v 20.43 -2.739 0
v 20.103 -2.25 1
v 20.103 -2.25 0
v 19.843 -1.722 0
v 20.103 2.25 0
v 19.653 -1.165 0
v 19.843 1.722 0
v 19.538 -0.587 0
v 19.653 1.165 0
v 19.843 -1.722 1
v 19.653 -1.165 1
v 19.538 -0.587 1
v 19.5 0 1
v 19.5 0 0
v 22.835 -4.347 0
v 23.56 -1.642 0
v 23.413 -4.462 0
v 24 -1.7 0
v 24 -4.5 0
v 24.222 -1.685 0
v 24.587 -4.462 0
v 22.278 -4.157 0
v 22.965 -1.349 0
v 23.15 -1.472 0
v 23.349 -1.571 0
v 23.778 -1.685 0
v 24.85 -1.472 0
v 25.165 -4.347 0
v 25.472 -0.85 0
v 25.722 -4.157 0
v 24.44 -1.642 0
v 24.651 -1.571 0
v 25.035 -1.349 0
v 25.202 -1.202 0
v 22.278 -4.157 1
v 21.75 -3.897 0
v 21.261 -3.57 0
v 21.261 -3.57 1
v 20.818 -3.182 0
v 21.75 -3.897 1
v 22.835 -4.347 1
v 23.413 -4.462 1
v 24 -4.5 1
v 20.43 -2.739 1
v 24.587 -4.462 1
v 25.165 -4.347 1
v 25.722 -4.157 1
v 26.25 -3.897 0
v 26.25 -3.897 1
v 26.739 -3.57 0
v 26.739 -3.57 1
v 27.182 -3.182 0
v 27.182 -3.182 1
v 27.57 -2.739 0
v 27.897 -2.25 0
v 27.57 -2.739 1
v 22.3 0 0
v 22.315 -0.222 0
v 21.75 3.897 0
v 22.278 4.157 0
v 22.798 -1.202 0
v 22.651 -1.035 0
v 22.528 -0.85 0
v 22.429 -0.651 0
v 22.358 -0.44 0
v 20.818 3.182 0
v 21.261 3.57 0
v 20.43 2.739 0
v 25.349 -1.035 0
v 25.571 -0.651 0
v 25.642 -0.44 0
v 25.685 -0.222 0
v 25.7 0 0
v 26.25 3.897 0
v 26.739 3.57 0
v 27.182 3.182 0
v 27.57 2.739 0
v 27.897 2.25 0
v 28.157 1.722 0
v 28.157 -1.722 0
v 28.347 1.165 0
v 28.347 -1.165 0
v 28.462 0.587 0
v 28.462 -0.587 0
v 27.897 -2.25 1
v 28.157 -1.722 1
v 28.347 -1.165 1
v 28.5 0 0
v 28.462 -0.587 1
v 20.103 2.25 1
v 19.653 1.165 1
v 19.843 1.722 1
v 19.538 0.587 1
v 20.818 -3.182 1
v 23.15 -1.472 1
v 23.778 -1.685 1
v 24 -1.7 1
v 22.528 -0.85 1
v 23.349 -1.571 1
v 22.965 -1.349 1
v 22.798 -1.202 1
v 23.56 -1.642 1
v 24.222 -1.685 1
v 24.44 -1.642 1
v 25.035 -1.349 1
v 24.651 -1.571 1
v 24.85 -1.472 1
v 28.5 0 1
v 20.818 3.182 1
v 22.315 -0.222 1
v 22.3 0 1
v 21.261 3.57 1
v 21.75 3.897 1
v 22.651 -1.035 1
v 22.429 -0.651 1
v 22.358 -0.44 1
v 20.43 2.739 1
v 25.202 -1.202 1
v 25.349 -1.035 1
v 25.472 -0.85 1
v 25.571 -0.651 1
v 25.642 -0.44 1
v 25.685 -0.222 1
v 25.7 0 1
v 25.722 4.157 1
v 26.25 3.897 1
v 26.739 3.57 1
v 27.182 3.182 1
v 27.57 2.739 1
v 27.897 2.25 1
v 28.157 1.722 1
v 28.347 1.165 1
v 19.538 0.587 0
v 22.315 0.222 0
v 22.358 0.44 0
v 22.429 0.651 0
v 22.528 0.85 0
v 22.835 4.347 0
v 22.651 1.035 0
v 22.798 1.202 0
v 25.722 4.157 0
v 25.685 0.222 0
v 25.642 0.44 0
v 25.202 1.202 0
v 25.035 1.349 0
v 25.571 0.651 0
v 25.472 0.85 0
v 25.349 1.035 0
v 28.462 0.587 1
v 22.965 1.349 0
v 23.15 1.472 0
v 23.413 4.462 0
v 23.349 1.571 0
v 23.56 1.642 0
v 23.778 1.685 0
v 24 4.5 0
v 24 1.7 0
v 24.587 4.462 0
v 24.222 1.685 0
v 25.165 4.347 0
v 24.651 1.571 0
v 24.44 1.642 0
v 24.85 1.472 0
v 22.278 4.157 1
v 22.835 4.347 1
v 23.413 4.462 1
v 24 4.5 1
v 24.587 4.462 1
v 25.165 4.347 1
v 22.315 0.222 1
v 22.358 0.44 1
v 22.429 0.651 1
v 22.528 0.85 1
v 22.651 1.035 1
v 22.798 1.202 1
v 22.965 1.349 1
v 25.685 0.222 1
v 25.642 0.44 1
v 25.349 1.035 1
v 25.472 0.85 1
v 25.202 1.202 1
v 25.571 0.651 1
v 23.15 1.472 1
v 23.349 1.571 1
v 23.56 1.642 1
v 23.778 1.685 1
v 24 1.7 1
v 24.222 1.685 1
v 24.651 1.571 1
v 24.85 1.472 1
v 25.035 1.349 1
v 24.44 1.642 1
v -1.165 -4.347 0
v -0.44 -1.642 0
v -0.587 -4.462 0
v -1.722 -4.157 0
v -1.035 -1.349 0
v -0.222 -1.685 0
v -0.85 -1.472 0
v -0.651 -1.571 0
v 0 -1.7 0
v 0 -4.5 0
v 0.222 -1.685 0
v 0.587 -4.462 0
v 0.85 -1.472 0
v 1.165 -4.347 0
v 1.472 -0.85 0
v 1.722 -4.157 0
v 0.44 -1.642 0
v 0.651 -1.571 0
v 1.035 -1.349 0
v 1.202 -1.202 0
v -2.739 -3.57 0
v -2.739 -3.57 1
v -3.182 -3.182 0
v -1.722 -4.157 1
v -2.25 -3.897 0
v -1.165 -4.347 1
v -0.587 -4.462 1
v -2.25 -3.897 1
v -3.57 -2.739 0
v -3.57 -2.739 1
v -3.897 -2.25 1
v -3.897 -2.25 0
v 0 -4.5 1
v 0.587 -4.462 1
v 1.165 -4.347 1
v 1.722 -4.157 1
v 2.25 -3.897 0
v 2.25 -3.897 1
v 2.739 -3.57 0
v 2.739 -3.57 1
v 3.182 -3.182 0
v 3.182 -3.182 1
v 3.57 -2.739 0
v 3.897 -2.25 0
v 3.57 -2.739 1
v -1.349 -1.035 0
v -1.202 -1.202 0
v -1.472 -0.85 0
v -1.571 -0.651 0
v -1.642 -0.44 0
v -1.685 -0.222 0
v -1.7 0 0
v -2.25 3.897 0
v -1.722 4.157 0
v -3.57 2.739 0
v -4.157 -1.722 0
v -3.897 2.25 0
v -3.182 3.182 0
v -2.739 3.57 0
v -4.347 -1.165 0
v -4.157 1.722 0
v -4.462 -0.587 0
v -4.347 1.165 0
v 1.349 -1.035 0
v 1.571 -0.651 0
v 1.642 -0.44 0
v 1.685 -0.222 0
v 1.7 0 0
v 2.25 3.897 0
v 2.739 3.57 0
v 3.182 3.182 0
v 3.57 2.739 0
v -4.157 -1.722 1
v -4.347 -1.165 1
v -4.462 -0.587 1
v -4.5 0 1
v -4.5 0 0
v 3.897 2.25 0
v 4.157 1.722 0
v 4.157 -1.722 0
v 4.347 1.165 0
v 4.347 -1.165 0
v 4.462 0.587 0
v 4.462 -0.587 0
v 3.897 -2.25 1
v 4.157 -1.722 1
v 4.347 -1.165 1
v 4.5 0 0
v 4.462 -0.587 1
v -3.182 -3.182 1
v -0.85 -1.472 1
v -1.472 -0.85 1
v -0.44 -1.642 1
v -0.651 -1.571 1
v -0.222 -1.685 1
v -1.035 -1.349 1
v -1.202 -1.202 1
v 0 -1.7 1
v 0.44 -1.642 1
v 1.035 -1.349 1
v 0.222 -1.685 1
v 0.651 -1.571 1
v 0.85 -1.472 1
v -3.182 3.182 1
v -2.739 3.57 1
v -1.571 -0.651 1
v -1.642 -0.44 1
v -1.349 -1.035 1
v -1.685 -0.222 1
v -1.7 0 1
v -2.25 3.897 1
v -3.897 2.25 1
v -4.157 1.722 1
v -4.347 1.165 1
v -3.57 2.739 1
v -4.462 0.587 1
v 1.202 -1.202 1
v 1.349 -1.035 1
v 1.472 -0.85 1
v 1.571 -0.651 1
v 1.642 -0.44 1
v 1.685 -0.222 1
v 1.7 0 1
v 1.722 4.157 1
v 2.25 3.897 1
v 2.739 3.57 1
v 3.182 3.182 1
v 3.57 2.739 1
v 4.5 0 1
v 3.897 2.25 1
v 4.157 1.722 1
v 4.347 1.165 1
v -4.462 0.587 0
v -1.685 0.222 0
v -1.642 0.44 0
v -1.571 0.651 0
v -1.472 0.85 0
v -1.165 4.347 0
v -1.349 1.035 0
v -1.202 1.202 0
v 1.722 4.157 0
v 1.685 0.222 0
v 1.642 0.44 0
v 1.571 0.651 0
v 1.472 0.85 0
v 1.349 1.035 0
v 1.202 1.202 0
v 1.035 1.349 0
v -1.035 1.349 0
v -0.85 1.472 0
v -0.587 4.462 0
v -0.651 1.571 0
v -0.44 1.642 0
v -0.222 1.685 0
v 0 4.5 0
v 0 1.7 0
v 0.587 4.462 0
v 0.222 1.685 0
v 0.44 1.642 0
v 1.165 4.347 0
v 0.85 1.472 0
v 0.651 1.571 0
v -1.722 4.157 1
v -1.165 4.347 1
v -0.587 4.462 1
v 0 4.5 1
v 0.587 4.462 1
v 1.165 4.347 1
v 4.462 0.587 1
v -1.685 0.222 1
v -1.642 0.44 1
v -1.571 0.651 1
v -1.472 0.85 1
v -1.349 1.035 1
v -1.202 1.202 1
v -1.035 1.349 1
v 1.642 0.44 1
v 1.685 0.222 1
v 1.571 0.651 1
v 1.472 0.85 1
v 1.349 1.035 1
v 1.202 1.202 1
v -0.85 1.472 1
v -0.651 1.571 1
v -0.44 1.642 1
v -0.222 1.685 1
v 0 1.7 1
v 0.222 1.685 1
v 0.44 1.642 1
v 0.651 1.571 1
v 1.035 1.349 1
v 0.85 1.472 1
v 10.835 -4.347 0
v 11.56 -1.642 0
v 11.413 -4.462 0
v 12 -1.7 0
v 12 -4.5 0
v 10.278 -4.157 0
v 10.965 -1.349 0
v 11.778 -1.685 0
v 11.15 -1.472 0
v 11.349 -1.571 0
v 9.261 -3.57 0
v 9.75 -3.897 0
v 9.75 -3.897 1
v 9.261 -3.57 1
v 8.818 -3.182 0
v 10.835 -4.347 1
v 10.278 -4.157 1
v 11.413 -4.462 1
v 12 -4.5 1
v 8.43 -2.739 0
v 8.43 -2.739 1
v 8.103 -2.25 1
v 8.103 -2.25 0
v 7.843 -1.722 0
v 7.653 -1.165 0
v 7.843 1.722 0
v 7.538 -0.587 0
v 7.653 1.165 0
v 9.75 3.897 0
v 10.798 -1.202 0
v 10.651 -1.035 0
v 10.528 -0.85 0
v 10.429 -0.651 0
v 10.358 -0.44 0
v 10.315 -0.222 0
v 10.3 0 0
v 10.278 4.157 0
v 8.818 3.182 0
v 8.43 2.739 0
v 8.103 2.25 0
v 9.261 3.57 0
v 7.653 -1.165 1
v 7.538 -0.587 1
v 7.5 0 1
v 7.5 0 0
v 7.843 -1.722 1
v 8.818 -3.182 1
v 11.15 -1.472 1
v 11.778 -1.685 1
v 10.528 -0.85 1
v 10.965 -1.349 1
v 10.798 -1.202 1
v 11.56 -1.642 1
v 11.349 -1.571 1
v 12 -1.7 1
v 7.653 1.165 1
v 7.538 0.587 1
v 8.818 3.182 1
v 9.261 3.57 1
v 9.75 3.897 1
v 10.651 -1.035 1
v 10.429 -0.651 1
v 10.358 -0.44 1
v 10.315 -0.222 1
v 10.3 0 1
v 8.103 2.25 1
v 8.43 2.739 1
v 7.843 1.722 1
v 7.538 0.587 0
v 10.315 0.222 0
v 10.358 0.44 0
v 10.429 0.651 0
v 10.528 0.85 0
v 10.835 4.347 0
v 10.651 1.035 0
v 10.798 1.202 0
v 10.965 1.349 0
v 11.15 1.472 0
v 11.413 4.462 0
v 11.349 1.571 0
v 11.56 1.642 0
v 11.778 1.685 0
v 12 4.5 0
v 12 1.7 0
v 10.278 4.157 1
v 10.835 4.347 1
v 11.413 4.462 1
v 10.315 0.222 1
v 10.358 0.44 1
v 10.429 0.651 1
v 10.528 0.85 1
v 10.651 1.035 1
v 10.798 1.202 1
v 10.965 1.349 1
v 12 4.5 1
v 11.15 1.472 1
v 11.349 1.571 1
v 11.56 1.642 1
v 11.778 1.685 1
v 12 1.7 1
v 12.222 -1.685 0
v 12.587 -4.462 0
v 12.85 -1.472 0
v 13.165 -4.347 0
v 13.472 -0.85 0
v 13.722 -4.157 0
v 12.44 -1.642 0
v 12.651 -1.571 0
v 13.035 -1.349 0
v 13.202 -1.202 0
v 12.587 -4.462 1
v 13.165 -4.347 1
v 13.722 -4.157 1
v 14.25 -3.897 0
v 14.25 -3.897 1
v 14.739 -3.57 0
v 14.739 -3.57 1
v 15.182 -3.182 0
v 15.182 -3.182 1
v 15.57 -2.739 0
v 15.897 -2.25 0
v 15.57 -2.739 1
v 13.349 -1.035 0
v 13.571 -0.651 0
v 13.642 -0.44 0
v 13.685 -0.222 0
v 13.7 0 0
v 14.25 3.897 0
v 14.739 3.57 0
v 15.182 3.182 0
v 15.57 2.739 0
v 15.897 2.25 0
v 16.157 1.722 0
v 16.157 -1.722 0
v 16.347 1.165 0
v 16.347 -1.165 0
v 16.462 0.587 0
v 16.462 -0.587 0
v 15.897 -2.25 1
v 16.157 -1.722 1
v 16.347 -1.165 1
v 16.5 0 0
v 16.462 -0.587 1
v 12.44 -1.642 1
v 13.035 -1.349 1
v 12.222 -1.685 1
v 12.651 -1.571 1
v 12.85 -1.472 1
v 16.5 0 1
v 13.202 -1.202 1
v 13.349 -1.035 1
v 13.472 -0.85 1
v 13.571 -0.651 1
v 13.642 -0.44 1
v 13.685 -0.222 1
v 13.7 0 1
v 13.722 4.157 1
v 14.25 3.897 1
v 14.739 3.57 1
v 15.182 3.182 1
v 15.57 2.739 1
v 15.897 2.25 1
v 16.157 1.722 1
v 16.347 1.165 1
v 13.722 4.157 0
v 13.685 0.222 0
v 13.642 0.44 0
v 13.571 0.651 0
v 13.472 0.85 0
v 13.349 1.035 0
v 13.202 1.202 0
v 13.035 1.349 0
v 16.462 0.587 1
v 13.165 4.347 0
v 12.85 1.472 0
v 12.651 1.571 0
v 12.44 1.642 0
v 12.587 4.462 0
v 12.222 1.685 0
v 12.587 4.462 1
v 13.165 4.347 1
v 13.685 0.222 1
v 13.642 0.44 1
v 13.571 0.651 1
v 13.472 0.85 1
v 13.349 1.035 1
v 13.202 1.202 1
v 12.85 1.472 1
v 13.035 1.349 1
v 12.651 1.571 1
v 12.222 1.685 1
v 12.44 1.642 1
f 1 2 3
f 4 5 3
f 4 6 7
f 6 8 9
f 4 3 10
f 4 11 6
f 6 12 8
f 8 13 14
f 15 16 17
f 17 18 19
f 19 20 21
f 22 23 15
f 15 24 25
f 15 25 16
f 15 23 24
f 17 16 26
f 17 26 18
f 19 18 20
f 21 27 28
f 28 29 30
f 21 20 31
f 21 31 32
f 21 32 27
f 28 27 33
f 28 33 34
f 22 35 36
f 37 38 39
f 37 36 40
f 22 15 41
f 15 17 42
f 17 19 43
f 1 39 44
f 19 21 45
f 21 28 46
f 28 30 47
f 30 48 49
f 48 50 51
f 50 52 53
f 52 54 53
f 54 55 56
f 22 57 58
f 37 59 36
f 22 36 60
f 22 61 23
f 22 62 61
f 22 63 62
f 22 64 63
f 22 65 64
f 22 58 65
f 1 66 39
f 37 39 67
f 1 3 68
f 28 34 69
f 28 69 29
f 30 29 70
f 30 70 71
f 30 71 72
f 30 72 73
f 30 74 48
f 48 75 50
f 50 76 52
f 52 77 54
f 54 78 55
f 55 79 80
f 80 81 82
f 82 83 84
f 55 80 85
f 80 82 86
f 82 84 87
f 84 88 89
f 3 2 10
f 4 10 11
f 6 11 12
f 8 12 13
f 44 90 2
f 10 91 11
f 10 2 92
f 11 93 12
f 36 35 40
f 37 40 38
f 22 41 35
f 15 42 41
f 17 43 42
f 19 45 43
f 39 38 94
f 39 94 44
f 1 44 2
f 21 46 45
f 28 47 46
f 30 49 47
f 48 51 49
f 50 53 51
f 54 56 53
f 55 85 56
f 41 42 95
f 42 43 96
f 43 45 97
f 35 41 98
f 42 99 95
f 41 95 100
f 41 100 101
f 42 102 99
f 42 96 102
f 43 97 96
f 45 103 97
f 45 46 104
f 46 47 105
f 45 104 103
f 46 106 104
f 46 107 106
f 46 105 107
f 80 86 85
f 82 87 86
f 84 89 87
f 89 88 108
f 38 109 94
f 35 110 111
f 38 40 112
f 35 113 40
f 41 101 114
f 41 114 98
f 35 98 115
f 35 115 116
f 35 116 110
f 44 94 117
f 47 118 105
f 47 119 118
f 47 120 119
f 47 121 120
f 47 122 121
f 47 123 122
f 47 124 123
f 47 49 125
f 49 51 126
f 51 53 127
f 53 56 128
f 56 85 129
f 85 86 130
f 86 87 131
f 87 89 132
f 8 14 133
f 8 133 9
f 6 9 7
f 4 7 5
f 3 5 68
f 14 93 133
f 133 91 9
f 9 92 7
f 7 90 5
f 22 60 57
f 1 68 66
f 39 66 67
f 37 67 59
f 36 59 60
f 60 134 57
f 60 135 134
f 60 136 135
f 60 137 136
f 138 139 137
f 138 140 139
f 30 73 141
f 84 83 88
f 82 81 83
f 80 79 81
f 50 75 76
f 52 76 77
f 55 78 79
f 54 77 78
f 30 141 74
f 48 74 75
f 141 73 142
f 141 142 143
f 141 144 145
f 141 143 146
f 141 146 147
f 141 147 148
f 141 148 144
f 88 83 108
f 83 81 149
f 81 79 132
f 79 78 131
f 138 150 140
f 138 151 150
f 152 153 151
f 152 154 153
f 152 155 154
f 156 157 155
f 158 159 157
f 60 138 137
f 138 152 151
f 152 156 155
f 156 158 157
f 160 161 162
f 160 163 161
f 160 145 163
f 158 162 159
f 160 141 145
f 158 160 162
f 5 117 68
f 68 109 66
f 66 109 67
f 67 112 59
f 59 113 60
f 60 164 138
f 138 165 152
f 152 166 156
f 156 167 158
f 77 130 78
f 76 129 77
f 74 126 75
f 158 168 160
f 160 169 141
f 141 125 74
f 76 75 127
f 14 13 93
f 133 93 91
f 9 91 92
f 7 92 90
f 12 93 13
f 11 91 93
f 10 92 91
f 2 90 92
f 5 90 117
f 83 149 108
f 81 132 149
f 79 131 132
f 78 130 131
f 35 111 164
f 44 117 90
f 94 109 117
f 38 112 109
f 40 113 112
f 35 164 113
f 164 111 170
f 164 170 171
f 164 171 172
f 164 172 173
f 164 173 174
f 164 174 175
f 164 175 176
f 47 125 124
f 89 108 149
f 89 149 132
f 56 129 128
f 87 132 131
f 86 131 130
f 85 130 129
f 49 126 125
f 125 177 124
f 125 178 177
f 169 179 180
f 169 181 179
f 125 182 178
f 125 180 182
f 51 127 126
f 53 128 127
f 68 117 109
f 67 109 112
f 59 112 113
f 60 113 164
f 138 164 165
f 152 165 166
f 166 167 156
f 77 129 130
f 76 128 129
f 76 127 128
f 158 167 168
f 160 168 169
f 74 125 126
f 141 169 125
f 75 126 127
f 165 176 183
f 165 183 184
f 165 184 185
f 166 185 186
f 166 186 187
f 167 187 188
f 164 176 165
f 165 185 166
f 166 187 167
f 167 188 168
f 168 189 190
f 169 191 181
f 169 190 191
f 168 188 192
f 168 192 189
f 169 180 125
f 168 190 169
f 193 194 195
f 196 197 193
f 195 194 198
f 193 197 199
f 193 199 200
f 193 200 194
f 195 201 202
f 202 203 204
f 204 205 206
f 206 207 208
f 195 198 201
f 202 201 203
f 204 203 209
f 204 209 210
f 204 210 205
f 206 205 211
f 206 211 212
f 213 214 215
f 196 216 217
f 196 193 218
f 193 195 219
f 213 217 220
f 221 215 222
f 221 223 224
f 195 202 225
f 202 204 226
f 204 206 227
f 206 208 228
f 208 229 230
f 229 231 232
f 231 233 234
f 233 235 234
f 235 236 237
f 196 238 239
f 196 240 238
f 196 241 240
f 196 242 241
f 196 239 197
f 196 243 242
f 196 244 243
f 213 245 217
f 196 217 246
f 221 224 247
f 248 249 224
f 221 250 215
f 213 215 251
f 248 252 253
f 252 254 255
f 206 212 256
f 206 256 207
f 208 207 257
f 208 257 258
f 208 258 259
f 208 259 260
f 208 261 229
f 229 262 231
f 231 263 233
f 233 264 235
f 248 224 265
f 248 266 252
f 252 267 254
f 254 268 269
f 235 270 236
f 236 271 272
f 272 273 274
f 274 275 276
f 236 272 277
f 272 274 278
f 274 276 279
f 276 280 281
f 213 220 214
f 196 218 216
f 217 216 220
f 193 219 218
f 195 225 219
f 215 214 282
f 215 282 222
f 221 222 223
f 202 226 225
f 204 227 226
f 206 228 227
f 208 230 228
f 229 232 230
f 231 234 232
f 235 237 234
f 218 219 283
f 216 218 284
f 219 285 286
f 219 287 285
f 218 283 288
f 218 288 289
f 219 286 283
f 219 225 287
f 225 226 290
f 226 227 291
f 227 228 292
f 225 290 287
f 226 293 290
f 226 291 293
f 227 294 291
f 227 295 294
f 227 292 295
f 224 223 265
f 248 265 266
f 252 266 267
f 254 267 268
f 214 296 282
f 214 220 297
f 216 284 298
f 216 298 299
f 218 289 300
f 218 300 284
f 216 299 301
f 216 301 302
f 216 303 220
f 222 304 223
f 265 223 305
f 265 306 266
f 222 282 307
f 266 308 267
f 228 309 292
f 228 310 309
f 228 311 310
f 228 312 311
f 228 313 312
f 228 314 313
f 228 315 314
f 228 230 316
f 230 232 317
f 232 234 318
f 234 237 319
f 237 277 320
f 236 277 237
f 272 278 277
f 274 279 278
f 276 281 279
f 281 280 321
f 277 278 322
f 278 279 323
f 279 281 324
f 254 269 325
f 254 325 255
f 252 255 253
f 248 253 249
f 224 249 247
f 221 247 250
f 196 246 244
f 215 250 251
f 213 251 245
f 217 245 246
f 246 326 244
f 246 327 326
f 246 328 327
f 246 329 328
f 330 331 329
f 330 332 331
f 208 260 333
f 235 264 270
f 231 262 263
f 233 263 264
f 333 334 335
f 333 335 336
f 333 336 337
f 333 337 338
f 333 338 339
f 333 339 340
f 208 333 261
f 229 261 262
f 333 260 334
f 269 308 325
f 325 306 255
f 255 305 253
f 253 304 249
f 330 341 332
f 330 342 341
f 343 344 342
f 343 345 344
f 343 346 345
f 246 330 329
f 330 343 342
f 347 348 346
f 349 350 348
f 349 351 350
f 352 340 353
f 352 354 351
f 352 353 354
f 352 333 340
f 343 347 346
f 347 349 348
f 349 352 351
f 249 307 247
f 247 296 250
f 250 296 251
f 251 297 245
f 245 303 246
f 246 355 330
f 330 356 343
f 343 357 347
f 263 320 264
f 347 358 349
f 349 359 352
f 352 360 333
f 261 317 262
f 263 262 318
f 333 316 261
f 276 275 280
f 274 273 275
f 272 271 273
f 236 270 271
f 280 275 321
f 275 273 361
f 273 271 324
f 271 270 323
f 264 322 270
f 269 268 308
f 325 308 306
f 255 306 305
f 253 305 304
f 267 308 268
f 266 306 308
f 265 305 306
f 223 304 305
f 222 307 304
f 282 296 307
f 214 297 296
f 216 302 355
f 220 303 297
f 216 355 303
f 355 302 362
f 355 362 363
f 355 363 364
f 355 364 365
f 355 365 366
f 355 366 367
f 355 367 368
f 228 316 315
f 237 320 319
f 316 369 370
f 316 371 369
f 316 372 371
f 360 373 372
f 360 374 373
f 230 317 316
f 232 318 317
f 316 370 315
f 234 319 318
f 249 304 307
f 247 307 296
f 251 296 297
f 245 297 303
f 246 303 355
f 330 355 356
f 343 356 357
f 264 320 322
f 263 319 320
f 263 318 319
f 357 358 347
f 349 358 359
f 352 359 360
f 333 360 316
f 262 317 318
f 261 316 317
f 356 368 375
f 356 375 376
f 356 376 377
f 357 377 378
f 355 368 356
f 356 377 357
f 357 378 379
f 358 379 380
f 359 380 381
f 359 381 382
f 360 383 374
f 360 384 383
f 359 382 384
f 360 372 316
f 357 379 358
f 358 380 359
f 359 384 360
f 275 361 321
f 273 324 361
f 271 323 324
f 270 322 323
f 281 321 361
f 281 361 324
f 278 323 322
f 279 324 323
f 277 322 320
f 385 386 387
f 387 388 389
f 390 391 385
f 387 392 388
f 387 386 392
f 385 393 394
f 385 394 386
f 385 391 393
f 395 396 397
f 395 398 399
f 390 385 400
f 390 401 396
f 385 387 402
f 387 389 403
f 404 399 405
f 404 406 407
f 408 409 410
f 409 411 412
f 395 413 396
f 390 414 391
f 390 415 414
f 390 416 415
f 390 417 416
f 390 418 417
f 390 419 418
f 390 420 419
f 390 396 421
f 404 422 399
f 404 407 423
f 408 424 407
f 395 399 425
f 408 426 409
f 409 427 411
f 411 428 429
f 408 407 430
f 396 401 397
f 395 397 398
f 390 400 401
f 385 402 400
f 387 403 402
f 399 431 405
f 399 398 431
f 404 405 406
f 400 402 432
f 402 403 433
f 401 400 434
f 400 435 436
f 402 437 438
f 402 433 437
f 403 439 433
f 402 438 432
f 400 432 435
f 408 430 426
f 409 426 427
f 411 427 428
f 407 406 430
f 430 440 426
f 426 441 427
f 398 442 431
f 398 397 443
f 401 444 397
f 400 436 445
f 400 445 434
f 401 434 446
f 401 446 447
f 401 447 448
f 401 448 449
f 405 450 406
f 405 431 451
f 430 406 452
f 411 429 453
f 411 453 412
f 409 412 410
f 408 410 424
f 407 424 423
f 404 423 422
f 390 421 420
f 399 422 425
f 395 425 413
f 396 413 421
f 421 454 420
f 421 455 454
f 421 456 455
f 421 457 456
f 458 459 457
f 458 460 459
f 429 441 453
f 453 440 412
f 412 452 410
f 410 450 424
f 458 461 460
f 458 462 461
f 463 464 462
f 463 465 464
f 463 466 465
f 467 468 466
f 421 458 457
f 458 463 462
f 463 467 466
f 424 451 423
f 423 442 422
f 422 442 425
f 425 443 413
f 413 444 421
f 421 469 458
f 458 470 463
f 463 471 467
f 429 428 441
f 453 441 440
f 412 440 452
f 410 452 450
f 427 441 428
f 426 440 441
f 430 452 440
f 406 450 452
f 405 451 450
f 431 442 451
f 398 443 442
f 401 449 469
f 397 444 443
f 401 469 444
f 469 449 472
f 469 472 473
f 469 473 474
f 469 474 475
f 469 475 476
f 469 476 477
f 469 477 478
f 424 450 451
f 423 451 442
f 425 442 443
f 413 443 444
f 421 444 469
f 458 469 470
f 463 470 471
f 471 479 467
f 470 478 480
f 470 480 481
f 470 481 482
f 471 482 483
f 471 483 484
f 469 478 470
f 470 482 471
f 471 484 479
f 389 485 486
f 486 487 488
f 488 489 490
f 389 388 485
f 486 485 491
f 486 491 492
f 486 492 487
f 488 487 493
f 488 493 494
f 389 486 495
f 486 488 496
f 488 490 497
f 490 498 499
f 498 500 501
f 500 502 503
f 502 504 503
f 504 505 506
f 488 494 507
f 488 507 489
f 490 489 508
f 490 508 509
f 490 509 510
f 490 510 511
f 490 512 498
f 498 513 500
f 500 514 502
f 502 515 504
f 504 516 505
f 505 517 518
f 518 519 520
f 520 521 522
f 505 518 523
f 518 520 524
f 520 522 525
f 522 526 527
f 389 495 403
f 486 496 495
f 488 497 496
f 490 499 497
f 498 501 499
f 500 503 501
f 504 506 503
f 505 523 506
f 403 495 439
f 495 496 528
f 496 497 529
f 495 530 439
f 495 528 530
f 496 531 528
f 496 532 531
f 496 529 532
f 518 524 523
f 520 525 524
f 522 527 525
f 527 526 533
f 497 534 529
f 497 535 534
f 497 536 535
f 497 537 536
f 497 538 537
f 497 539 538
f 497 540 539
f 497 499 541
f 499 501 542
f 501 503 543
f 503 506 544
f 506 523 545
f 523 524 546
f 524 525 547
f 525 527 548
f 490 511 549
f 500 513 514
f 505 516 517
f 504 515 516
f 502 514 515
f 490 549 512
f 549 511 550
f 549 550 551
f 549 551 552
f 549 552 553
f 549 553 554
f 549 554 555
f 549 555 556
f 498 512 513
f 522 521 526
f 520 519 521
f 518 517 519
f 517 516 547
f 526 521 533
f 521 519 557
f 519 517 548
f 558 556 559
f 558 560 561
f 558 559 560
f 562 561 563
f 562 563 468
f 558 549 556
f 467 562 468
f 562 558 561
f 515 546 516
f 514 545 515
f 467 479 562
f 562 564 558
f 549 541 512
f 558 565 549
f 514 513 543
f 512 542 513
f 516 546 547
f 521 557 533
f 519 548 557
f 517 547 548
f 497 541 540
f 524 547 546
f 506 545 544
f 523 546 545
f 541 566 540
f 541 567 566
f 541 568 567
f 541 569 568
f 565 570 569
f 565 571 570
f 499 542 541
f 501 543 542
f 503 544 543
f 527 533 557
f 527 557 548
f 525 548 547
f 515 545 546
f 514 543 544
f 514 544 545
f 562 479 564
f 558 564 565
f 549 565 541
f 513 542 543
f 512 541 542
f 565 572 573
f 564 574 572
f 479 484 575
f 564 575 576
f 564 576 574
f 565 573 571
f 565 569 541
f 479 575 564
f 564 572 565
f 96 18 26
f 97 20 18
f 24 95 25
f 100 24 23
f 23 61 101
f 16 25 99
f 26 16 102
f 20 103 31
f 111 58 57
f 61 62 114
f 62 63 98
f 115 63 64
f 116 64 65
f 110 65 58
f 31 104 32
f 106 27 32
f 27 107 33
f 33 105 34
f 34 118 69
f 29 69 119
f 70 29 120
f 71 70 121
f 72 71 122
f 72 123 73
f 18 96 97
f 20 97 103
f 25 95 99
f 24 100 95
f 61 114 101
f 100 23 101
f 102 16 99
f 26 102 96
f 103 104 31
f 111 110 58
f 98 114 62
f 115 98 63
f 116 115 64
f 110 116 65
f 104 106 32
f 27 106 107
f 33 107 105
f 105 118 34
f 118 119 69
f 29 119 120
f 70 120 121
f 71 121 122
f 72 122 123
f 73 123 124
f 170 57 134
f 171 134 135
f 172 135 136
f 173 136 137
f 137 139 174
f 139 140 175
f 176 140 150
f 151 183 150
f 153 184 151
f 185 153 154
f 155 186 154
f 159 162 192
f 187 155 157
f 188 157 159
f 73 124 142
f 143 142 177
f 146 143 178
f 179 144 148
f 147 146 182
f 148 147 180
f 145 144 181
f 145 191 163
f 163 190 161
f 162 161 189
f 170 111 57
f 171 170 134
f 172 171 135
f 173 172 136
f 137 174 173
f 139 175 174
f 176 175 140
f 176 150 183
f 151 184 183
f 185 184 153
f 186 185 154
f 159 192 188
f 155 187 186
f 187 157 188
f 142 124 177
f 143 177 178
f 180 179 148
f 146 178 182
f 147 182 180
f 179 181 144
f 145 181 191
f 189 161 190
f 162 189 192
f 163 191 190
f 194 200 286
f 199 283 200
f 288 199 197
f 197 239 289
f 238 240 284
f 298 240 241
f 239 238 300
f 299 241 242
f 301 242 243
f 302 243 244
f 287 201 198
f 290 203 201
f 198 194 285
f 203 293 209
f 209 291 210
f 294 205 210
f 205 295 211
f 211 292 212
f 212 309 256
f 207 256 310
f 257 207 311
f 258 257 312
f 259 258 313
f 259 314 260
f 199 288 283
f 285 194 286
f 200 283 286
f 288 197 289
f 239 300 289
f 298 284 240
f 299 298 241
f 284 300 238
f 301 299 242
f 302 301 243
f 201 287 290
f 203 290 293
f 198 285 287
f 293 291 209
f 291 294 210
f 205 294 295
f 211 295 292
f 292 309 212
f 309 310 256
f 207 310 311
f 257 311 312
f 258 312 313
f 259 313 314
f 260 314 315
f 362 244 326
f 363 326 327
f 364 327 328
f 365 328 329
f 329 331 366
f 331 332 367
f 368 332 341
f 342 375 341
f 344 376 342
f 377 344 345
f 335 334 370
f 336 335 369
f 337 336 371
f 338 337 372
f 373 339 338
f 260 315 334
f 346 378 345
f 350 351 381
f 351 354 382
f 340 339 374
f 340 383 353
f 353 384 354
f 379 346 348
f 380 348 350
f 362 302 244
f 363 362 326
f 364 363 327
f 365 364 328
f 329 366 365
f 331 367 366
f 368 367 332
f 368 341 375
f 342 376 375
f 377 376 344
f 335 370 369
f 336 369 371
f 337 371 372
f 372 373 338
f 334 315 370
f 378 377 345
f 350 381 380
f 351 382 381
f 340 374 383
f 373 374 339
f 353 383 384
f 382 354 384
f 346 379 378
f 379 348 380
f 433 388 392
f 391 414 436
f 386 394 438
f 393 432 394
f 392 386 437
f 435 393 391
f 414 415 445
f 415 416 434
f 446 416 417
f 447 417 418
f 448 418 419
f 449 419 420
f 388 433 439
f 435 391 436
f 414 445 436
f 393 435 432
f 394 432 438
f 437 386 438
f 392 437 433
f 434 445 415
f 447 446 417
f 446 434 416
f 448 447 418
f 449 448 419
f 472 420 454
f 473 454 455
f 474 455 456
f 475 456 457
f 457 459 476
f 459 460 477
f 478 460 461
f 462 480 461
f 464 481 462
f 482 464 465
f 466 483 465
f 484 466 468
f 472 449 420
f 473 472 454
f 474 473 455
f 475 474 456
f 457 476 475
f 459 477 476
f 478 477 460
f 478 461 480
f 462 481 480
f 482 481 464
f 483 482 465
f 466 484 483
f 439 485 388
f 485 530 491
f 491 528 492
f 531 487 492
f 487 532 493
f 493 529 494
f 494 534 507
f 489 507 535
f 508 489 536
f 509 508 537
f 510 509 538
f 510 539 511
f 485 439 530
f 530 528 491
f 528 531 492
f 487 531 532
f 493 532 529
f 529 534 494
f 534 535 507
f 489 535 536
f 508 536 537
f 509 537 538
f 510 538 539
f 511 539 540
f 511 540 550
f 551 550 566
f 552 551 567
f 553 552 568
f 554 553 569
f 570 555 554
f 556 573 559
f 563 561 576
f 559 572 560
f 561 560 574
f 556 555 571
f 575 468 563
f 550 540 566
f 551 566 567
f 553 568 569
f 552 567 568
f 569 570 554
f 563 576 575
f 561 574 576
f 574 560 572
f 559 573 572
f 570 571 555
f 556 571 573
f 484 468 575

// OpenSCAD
// Printed washers for the two arm screws (plus a spare): 9 mm across, 3.4 mm hole, 1 mm thick.
include <../cad/punch_rig_020.scad>
PART = "washers";
